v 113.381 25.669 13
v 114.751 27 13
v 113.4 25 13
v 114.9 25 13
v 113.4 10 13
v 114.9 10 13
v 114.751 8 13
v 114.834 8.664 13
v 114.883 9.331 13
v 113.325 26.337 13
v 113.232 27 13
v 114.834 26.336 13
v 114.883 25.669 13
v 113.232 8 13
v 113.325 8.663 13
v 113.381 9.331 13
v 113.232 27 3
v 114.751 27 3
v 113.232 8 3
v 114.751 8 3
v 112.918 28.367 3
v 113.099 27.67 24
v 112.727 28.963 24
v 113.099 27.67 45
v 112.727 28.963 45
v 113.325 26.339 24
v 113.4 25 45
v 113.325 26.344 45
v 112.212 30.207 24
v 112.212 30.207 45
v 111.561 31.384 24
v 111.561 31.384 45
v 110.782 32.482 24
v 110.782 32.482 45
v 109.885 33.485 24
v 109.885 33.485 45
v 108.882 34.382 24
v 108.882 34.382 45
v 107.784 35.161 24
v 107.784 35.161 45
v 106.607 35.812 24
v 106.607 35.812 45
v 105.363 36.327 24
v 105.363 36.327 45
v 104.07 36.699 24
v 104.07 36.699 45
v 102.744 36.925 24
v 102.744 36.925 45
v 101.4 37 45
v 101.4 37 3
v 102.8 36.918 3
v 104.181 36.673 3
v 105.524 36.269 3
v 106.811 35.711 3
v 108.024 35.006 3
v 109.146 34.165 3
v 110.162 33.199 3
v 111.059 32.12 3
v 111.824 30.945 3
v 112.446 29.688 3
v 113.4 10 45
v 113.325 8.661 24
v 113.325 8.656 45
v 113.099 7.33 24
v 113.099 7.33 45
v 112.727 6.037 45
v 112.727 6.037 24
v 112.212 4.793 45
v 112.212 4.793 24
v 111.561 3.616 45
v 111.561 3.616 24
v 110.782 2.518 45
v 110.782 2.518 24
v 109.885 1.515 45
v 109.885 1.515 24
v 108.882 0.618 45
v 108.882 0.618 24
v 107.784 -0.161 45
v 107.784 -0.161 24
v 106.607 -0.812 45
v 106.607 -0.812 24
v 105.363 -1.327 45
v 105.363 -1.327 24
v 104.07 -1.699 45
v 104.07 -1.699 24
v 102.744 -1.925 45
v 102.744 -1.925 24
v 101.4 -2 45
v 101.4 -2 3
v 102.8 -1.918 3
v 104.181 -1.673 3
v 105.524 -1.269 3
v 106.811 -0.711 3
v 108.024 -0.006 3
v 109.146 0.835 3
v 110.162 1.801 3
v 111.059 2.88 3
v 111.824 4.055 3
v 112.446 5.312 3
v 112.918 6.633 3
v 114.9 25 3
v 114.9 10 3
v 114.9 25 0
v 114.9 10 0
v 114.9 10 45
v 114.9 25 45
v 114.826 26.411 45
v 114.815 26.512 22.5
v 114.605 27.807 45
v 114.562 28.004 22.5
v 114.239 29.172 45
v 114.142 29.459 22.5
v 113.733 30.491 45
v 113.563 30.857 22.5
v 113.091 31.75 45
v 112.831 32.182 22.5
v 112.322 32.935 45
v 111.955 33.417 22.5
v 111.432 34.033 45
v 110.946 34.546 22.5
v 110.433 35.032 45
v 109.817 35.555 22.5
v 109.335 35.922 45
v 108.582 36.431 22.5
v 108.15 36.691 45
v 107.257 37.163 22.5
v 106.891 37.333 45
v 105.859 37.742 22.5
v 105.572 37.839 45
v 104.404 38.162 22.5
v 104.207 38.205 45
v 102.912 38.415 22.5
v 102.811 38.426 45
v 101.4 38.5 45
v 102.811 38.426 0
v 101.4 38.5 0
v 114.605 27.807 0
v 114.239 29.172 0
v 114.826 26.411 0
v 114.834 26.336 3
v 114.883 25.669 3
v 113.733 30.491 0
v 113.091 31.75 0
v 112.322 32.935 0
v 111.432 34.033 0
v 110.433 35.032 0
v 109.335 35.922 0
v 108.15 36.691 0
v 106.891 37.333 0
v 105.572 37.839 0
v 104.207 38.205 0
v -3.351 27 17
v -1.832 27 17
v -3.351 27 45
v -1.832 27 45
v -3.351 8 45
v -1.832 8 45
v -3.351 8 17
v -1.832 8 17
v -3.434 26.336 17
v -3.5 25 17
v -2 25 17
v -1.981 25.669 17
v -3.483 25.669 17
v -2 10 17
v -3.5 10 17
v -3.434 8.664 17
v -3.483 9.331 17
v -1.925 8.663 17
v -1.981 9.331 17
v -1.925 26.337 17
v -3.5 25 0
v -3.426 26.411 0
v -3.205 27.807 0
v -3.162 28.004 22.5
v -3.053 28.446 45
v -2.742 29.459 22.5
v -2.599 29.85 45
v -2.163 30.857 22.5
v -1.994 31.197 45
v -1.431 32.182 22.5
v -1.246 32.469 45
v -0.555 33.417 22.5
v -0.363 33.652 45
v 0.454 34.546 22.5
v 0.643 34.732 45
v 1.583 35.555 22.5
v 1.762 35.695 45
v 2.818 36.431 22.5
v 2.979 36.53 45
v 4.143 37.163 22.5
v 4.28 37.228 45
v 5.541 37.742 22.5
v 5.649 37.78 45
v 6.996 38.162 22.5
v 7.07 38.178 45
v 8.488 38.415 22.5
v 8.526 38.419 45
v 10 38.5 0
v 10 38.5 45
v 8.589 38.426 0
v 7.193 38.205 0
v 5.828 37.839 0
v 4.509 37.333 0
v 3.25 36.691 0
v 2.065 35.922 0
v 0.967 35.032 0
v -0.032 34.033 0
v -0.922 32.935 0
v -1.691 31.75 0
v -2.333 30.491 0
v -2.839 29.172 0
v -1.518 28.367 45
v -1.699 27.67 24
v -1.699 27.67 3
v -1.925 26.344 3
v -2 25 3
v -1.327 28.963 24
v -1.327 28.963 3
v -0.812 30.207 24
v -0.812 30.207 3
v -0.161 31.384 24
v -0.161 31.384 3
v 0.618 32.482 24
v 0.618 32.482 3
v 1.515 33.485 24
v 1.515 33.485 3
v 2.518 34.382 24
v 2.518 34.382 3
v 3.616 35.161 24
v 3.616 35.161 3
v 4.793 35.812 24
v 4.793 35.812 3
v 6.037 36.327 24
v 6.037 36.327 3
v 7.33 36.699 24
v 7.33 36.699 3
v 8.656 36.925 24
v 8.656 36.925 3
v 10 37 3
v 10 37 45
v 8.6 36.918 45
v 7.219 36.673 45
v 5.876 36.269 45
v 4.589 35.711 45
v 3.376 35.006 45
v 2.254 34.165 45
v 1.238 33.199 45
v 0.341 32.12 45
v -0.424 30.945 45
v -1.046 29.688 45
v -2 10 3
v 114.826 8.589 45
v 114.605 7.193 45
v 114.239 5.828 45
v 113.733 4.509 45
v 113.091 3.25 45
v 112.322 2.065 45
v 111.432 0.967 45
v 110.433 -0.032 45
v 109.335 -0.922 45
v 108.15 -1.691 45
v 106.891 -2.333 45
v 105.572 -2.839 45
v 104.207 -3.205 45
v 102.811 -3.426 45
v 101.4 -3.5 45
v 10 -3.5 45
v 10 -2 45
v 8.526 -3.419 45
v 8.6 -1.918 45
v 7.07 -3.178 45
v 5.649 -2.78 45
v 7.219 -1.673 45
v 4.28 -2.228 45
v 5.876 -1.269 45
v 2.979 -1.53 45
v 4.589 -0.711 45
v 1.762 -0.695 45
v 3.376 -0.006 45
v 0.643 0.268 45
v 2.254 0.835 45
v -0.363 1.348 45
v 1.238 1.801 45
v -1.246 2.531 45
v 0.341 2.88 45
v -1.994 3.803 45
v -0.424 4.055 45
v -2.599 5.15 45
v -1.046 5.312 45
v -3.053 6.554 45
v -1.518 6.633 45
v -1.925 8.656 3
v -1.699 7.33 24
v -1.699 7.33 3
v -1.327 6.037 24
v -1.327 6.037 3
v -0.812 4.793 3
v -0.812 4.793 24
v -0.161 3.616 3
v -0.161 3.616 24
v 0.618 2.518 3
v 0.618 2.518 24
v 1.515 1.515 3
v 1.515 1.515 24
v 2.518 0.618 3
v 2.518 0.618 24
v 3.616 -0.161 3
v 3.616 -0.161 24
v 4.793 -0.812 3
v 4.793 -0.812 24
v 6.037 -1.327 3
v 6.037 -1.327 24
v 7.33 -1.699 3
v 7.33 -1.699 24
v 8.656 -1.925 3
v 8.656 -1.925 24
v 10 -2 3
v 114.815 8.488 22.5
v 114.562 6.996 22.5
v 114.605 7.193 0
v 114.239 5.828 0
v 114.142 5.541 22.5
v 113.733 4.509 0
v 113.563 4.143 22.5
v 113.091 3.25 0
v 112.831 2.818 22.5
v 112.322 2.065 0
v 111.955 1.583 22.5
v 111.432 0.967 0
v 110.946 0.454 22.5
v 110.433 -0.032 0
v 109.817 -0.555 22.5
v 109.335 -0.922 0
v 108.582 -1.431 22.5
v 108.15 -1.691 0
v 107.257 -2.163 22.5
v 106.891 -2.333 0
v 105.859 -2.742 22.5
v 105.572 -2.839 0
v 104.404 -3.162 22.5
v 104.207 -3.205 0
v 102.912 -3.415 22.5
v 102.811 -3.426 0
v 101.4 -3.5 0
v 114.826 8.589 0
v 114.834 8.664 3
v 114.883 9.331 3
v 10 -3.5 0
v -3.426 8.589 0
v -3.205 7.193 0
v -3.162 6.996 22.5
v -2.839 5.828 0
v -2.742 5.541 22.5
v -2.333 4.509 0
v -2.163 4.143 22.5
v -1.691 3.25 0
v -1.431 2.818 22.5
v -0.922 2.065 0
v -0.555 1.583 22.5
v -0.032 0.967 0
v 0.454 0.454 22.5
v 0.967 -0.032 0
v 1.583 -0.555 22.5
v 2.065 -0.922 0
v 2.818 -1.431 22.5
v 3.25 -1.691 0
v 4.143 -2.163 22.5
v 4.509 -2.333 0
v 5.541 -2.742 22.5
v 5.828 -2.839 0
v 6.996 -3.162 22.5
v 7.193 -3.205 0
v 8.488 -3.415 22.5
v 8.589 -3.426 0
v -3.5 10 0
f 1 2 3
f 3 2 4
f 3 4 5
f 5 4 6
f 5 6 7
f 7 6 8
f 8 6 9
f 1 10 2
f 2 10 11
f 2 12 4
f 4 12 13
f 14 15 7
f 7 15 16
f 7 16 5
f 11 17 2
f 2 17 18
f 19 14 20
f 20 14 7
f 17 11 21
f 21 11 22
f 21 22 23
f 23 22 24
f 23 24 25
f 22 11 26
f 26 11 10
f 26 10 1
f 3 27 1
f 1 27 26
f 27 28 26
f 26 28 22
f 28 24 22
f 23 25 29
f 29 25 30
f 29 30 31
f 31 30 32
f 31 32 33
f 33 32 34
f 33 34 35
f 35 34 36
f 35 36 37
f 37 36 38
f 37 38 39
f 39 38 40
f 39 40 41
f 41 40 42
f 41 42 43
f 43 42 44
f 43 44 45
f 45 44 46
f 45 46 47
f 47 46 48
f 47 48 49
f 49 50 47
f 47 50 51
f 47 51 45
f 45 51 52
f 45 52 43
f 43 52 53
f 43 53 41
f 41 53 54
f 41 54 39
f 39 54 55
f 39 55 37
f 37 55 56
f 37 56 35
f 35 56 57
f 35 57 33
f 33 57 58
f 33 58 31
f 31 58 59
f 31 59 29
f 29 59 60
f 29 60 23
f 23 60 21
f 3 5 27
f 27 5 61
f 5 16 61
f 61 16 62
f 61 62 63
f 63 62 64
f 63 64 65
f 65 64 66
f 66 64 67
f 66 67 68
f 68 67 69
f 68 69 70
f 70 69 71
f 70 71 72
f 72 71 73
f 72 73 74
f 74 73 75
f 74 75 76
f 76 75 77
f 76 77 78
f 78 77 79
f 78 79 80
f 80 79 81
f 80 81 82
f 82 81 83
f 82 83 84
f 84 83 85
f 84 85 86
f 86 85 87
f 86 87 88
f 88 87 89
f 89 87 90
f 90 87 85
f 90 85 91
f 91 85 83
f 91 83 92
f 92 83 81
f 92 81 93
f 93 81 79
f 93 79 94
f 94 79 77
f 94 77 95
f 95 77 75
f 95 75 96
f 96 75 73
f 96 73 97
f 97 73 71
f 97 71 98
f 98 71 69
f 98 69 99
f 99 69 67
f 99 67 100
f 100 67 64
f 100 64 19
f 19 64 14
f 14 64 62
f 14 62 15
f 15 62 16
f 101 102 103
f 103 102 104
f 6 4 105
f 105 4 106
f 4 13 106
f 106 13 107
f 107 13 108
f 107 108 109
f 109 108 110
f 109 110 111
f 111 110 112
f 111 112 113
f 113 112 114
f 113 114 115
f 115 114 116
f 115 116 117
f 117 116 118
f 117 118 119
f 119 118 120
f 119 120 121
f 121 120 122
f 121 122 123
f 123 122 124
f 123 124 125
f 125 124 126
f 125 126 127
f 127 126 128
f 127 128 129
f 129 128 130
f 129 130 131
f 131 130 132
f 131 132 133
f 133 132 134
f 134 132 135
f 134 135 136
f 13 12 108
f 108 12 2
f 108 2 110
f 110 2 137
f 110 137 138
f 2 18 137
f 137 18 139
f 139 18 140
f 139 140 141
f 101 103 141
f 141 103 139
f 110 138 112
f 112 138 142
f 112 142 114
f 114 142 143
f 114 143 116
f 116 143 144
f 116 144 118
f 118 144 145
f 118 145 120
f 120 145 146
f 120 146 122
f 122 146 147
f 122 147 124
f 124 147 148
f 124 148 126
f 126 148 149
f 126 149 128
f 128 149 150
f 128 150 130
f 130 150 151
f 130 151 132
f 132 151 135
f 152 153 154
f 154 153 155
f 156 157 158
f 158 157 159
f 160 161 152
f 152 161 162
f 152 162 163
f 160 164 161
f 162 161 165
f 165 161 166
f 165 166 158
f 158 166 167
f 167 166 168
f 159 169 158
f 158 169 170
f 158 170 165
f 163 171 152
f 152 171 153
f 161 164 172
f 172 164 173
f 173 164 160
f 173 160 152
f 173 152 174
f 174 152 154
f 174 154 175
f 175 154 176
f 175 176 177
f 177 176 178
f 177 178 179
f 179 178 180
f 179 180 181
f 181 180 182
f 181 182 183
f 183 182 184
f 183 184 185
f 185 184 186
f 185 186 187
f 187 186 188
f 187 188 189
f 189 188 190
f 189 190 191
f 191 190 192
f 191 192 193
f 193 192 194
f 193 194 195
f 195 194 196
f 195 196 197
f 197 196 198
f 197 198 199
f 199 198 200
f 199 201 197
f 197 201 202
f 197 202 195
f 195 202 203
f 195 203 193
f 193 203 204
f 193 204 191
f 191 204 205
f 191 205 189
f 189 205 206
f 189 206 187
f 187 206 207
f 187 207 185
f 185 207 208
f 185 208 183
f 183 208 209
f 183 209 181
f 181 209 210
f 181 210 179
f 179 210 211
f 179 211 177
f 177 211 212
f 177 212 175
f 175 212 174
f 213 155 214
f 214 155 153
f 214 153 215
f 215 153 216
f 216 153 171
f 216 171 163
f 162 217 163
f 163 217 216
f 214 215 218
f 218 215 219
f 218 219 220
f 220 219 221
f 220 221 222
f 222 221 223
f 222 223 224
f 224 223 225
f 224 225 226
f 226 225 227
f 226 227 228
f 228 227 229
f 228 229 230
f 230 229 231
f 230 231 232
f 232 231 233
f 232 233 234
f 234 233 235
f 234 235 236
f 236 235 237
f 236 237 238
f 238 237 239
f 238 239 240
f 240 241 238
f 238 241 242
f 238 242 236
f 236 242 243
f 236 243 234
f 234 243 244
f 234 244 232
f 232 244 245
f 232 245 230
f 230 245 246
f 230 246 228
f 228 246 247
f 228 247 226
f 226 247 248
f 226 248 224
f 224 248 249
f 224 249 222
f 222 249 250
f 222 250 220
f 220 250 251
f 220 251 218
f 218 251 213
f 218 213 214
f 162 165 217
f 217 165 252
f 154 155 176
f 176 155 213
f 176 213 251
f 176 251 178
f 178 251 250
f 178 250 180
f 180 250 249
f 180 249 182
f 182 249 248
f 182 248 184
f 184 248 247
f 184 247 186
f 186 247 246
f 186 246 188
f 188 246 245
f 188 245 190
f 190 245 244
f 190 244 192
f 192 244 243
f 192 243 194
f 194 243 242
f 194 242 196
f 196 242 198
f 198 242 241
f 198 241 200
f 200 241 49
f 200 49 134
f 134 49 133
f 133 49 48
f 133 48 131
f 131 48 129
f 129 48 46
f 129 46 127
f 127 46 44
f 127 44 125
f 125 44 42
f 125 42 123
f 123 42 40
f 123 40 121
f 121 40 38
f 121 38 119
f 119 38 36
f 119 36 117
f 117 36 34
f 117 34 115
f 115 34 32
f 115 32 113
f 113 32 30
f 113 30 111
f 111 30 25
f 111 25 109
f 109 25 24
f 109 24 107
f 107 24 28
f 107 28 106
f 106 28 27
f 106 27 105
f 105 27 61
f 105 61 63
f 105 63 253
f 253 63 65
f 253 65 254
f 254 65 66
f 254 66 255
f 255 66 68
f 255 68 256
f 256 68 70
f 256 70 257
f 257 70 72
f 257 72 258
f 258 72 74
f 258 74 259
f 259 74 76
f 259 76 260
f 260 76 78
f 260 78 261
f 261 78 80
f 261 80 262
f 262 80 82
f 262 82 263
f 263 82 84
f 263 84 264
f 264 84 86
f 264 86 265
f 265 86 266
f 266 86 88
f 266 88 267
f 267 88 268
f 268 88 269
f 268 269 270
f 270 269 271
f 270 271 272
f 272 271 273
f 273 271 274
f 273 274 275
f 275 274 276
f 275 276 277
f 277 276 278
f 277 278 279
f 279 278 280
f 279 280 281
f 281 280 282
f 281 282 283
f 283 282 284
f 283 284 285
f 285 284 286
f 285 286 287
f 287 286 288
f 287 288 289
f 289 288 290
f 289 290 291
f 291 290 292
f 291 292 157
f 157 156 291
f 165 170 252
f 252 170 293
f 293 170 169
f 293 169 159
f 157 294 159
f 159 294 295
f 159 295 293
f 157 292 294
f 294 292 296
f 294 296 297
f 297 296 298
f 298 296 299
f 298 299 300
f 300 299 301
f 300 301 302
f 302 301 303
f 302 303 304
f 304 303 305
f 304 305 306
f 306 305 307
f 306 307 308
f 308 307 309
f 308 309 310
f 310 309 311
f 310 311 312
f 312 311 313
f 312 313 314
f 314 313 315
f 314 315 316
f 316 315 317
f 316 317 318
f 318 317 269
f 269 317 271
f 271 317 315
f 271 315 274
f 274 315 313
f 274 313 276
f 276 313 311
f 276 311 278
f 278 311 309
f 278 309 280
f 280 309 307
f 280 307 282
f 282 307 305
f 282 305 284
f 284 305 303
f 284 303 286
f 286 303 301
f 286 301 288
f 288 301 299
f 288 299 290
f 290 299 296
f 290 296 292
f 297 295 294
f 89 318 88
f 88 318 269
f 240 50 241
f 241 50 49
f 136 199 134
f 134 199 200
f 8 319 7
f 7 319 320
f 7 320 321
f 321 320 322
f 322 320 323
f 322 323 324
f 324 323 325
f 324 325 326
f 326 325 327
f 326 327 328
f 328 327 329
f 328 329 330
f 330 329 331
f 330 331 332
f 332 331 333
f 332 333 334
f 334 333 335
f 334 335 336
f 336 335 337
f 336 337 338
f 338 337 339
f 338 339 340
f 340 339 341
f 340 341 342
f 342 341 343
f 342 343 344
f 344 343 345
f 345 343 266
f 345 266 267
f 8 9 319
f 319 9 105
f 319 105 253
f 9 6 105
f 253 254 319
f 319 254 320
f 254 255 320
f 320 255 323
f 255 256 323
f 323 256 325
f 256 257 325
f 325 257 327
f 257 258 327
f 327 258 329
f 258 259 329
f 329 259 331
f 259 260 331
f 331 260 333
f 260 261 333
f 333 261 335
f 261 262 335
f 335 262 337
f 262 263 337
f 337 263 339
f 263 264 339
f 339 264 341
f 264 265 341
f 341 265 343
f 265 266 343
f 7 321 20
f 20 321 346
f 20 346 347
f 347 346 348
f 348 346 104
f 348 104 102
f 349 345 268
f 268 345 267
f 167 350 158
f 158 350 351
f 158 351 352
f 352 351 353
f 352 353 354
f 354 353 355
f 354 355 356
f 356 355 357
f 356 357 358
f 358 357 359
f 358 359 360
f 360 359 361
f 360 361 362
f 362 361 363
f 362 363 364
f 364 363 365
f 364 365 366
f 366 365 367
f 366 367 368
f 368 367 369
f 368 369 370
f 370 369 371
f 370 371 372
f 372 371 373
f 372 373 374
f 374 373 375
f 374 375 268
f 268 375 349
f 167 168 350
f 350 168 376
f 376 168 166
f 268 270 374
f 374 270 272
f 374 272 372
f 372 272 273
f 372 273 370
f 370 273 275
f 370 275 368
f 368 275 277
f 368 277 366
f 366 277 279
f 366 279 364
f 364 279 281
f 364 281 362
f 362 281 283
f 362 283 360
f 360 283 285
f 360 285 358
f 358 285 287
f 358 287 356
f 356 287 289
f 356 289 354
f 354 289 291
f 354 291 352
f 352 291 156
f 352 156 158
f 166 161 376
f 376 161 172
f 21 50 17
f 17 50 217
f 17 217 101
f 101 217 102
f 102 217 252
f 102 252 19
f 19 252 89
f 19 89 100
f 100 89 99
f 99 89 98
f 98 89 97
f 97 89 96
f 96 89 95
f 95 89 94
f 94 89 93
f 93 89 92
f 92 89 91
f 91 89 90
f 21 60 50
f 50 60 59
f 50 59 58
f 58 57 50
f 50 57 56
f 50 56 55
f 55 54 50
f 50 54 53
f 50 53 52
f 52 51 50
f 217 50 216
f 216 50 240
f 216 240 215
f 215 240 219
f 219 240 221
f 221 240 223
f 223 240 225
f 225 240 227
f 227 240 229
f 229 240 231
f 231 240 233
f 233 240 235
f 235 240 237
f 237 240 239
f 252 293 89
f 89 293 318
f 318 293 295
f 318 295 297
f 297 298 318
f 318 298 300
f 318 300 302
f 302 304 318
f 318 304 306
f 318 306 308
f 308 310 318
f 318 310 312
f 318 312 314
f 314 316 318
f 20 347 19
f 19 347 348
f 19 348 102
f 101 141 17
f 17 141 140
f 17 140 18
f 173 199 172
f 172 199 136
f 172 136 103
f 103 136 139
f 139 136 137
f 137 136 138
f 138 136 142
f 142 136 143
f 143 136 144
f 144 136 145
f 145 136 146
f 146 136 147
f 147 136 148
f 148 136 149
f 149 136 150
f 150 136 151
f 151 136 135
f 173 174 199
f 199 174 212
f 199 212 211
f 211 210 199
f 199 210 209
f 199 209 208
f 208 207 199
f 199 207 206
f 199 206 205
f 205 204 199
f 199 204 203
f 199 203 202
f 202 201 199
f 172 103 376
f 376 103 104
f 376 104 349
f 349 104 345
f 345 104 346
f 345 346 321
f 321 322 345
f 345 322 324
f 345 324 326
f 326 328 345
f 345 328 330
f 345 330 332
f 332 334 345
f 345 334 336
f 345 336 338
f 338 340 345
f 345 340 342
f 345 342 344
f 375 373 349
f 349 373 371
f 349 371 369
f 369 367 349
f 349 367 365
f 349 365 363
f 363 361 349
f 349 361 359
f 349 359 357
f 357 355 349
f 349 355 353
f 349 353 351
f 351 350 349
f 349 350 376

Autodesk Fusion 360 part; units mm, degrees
sketch "Sketch1" plane through (0, 0, 0) normal (0, 0, 1) x (1, 0, 0)
  line L0 (10, 0) -> (101.4, 0)
  line L1 (111.4, 10) -> (111.4, 25)
  line L2 (101.4, 35) -> (10, 35)
  line L3 (0, 25) -> (0, 10)
  arc A0 (10, 35) -> (0, 25) centre (10, 25) ccw
  arc A1 (0, 10) -> (10, 0) centre (10, 10) ccw
  arc A2 (101.4, 0) -> (111.4, 10) centre (101.4, 10) ccw
  arc A3 (111.4, 25) -> (101.4, 35) centre (101.4, 25) ccw
  line L4 (-2, 25) -> (-2, 10)
  arc A4 (-2, 10) -> (10, -2) centre (10, 10) ccw
  line L5 (10, -2) -> (101.4, -2)
  arc A5 (101.4, -2) -> (113.4, 10) centre (101.4, 10) ccw
  line L6 (113.4, 10) -> (113.4, 25)
  arc A6 (113.4, 25) -> (101.4, 37) centre (101.4, 25) ccw
  line L7 (101.4, 37) -> (10, 37)
  arc A7 (10, 37) -> (-2, 25) centre (10, 25) ccw
  line L8 (-3.5, 25) -> (-3.5, 10)
  arc A8 (-3.5, 10) -> (10, -3.5) centre (10, 10) ccw
  line L9 (10, -3.5) -> (101.4, -3.5)
  arc A9 (101.4, -3.5) -> (114.9, 10) centre (101.4, 10) ccw
  line L10 (114.9, 10) -> (114.9, 25)
  arc A10 (114.9, 25) -> (101.4, 38.5) centre (101.4, 25) ccw
  line L11 (101.4, 38.5) -> (10, 38.5)
  arc A11 (10, 38.5) -> (-3.5, 25) centre (10, 25) ccw
  point P0 (111.4, 0)
  point P1 (0, 35)
  dimension "d1" = 111.4
  dimension "d2" = 35
  dimension "d3" = 10
  dimension "d4" = 2
  dimension "d5" = 3.5
extrude "Extrude1" add sketch "Sketch1" along normal blind 3 contours L0 L1 L2 L3 A0 A1 A2 A3 | L4 A4 L5 A5 L6 A6 L7 A7 | L8 A8 L9 A9 L10 A10 L11 A11
extrude "Extrude2" add sketch "Sketch1" along normal blind 45 contours L8 A8 L9 A9 L10 A10 L11 A11
sketch "Sketch2" plane through (0, 0, 45) normal (0, 0, 1) x (-1, 0, 0)
  arc A0 (-10, -37) -> (2, -25) centre (-10, -25) ccw
  line L0 (-10, -37) -> (-101.4, -37)
  arc A1 (-113.4, -25) -> (-101.4, -37) centre (-101.4, -25) ccw
  line L1 (-113.4, -25) -> (-113.4, -10)
  arc A2 (-101.4, 2) -> (-113.4, -10) centre (-101.4, -10) ccw
  line L2 (-101.4, 2) -> (-10, 2)
  arc A3 (2, -10) -> (-10, 2) centre (-10, -10) ccw
  line L3 (2, -10) -> (2, -25)
  arc A4 (-10, -38.5) -> (3.5, -25) centre (-10, -25) ccw
  line L4 (3.5, -25) -> (3.5, -10)
  arc A5 (3.5, -10) -> (-10, 3.5) centre (-10, -10) ccw
  line L5 (-10, 3.5) -> (-101.4, 3.5)
  arc A6 (-101.4, 3.5) -> (-114.9, -10) centre (-101.4, -10) ccw
  line L6 (-114.9, -10) -> (-114.9, -25)
  arc A7 (-114.9, -25) -> (-101.4, -38.5) centre (-101.4, -25) ccw
  line L7 (-101.4, -38.5) -> (-10, -38.5)
  line L8 (2, -17.5) -> (2, -27) construction
  line L9 (2, -27) -> (1, -27) construction
  line L10 (1, -27) -> (11, -27)
  line L11 (11, -27) -> (11, -8)
  line L12 (11, -8) -> (1, -8)
  line L13 (1, -8) -> (1, -27)
  dimension "d12" = 9.5
  dimension "d13" = 1
  dimension "d14" = 19
extrude "Extrude5" cut sketch "Sketch2" against normal blind 28 contours A0 A3 L3 L10 L12 L13 | A0 A3 L3 A4 L4 A5 L10 L12 | A4 L4 A5 L10 L11 L12
sketch "Sketch3" plane through (114.9, 0, 0) normal (1, 0, 0) x (0, 1, 0)
  line L0 (10, 0) -> (25, 0)
  line L1 (25, 0) -> (25, 45)
  line L2 (25, 45) -> (10, 45)
  line L3 (10, 45) -> (10, 0)
  line L4 (17.5, 0) -> (17.5, 3) construction
  line L5 (17.5, 3) -> (27, 3) construction
  line L6 (27, 3) -> (8, 3)
  line L7 (8, 3) -> (8, 13)
  line L8 (8, 13) -> (27, 13)
  line L9 (27, 13) -> (27, 3)
  dimension "d19" = 3
  dimension "d20" = 9.5
  dimension "d21" = 19
  dimension "d22" = 10
extrude "Extrude6" cut sketch "Sketch3" against normal blind 10 contours L3 L6 L7 L8 | L1 L3 L6 L8 | L1 L6 L8 L9
